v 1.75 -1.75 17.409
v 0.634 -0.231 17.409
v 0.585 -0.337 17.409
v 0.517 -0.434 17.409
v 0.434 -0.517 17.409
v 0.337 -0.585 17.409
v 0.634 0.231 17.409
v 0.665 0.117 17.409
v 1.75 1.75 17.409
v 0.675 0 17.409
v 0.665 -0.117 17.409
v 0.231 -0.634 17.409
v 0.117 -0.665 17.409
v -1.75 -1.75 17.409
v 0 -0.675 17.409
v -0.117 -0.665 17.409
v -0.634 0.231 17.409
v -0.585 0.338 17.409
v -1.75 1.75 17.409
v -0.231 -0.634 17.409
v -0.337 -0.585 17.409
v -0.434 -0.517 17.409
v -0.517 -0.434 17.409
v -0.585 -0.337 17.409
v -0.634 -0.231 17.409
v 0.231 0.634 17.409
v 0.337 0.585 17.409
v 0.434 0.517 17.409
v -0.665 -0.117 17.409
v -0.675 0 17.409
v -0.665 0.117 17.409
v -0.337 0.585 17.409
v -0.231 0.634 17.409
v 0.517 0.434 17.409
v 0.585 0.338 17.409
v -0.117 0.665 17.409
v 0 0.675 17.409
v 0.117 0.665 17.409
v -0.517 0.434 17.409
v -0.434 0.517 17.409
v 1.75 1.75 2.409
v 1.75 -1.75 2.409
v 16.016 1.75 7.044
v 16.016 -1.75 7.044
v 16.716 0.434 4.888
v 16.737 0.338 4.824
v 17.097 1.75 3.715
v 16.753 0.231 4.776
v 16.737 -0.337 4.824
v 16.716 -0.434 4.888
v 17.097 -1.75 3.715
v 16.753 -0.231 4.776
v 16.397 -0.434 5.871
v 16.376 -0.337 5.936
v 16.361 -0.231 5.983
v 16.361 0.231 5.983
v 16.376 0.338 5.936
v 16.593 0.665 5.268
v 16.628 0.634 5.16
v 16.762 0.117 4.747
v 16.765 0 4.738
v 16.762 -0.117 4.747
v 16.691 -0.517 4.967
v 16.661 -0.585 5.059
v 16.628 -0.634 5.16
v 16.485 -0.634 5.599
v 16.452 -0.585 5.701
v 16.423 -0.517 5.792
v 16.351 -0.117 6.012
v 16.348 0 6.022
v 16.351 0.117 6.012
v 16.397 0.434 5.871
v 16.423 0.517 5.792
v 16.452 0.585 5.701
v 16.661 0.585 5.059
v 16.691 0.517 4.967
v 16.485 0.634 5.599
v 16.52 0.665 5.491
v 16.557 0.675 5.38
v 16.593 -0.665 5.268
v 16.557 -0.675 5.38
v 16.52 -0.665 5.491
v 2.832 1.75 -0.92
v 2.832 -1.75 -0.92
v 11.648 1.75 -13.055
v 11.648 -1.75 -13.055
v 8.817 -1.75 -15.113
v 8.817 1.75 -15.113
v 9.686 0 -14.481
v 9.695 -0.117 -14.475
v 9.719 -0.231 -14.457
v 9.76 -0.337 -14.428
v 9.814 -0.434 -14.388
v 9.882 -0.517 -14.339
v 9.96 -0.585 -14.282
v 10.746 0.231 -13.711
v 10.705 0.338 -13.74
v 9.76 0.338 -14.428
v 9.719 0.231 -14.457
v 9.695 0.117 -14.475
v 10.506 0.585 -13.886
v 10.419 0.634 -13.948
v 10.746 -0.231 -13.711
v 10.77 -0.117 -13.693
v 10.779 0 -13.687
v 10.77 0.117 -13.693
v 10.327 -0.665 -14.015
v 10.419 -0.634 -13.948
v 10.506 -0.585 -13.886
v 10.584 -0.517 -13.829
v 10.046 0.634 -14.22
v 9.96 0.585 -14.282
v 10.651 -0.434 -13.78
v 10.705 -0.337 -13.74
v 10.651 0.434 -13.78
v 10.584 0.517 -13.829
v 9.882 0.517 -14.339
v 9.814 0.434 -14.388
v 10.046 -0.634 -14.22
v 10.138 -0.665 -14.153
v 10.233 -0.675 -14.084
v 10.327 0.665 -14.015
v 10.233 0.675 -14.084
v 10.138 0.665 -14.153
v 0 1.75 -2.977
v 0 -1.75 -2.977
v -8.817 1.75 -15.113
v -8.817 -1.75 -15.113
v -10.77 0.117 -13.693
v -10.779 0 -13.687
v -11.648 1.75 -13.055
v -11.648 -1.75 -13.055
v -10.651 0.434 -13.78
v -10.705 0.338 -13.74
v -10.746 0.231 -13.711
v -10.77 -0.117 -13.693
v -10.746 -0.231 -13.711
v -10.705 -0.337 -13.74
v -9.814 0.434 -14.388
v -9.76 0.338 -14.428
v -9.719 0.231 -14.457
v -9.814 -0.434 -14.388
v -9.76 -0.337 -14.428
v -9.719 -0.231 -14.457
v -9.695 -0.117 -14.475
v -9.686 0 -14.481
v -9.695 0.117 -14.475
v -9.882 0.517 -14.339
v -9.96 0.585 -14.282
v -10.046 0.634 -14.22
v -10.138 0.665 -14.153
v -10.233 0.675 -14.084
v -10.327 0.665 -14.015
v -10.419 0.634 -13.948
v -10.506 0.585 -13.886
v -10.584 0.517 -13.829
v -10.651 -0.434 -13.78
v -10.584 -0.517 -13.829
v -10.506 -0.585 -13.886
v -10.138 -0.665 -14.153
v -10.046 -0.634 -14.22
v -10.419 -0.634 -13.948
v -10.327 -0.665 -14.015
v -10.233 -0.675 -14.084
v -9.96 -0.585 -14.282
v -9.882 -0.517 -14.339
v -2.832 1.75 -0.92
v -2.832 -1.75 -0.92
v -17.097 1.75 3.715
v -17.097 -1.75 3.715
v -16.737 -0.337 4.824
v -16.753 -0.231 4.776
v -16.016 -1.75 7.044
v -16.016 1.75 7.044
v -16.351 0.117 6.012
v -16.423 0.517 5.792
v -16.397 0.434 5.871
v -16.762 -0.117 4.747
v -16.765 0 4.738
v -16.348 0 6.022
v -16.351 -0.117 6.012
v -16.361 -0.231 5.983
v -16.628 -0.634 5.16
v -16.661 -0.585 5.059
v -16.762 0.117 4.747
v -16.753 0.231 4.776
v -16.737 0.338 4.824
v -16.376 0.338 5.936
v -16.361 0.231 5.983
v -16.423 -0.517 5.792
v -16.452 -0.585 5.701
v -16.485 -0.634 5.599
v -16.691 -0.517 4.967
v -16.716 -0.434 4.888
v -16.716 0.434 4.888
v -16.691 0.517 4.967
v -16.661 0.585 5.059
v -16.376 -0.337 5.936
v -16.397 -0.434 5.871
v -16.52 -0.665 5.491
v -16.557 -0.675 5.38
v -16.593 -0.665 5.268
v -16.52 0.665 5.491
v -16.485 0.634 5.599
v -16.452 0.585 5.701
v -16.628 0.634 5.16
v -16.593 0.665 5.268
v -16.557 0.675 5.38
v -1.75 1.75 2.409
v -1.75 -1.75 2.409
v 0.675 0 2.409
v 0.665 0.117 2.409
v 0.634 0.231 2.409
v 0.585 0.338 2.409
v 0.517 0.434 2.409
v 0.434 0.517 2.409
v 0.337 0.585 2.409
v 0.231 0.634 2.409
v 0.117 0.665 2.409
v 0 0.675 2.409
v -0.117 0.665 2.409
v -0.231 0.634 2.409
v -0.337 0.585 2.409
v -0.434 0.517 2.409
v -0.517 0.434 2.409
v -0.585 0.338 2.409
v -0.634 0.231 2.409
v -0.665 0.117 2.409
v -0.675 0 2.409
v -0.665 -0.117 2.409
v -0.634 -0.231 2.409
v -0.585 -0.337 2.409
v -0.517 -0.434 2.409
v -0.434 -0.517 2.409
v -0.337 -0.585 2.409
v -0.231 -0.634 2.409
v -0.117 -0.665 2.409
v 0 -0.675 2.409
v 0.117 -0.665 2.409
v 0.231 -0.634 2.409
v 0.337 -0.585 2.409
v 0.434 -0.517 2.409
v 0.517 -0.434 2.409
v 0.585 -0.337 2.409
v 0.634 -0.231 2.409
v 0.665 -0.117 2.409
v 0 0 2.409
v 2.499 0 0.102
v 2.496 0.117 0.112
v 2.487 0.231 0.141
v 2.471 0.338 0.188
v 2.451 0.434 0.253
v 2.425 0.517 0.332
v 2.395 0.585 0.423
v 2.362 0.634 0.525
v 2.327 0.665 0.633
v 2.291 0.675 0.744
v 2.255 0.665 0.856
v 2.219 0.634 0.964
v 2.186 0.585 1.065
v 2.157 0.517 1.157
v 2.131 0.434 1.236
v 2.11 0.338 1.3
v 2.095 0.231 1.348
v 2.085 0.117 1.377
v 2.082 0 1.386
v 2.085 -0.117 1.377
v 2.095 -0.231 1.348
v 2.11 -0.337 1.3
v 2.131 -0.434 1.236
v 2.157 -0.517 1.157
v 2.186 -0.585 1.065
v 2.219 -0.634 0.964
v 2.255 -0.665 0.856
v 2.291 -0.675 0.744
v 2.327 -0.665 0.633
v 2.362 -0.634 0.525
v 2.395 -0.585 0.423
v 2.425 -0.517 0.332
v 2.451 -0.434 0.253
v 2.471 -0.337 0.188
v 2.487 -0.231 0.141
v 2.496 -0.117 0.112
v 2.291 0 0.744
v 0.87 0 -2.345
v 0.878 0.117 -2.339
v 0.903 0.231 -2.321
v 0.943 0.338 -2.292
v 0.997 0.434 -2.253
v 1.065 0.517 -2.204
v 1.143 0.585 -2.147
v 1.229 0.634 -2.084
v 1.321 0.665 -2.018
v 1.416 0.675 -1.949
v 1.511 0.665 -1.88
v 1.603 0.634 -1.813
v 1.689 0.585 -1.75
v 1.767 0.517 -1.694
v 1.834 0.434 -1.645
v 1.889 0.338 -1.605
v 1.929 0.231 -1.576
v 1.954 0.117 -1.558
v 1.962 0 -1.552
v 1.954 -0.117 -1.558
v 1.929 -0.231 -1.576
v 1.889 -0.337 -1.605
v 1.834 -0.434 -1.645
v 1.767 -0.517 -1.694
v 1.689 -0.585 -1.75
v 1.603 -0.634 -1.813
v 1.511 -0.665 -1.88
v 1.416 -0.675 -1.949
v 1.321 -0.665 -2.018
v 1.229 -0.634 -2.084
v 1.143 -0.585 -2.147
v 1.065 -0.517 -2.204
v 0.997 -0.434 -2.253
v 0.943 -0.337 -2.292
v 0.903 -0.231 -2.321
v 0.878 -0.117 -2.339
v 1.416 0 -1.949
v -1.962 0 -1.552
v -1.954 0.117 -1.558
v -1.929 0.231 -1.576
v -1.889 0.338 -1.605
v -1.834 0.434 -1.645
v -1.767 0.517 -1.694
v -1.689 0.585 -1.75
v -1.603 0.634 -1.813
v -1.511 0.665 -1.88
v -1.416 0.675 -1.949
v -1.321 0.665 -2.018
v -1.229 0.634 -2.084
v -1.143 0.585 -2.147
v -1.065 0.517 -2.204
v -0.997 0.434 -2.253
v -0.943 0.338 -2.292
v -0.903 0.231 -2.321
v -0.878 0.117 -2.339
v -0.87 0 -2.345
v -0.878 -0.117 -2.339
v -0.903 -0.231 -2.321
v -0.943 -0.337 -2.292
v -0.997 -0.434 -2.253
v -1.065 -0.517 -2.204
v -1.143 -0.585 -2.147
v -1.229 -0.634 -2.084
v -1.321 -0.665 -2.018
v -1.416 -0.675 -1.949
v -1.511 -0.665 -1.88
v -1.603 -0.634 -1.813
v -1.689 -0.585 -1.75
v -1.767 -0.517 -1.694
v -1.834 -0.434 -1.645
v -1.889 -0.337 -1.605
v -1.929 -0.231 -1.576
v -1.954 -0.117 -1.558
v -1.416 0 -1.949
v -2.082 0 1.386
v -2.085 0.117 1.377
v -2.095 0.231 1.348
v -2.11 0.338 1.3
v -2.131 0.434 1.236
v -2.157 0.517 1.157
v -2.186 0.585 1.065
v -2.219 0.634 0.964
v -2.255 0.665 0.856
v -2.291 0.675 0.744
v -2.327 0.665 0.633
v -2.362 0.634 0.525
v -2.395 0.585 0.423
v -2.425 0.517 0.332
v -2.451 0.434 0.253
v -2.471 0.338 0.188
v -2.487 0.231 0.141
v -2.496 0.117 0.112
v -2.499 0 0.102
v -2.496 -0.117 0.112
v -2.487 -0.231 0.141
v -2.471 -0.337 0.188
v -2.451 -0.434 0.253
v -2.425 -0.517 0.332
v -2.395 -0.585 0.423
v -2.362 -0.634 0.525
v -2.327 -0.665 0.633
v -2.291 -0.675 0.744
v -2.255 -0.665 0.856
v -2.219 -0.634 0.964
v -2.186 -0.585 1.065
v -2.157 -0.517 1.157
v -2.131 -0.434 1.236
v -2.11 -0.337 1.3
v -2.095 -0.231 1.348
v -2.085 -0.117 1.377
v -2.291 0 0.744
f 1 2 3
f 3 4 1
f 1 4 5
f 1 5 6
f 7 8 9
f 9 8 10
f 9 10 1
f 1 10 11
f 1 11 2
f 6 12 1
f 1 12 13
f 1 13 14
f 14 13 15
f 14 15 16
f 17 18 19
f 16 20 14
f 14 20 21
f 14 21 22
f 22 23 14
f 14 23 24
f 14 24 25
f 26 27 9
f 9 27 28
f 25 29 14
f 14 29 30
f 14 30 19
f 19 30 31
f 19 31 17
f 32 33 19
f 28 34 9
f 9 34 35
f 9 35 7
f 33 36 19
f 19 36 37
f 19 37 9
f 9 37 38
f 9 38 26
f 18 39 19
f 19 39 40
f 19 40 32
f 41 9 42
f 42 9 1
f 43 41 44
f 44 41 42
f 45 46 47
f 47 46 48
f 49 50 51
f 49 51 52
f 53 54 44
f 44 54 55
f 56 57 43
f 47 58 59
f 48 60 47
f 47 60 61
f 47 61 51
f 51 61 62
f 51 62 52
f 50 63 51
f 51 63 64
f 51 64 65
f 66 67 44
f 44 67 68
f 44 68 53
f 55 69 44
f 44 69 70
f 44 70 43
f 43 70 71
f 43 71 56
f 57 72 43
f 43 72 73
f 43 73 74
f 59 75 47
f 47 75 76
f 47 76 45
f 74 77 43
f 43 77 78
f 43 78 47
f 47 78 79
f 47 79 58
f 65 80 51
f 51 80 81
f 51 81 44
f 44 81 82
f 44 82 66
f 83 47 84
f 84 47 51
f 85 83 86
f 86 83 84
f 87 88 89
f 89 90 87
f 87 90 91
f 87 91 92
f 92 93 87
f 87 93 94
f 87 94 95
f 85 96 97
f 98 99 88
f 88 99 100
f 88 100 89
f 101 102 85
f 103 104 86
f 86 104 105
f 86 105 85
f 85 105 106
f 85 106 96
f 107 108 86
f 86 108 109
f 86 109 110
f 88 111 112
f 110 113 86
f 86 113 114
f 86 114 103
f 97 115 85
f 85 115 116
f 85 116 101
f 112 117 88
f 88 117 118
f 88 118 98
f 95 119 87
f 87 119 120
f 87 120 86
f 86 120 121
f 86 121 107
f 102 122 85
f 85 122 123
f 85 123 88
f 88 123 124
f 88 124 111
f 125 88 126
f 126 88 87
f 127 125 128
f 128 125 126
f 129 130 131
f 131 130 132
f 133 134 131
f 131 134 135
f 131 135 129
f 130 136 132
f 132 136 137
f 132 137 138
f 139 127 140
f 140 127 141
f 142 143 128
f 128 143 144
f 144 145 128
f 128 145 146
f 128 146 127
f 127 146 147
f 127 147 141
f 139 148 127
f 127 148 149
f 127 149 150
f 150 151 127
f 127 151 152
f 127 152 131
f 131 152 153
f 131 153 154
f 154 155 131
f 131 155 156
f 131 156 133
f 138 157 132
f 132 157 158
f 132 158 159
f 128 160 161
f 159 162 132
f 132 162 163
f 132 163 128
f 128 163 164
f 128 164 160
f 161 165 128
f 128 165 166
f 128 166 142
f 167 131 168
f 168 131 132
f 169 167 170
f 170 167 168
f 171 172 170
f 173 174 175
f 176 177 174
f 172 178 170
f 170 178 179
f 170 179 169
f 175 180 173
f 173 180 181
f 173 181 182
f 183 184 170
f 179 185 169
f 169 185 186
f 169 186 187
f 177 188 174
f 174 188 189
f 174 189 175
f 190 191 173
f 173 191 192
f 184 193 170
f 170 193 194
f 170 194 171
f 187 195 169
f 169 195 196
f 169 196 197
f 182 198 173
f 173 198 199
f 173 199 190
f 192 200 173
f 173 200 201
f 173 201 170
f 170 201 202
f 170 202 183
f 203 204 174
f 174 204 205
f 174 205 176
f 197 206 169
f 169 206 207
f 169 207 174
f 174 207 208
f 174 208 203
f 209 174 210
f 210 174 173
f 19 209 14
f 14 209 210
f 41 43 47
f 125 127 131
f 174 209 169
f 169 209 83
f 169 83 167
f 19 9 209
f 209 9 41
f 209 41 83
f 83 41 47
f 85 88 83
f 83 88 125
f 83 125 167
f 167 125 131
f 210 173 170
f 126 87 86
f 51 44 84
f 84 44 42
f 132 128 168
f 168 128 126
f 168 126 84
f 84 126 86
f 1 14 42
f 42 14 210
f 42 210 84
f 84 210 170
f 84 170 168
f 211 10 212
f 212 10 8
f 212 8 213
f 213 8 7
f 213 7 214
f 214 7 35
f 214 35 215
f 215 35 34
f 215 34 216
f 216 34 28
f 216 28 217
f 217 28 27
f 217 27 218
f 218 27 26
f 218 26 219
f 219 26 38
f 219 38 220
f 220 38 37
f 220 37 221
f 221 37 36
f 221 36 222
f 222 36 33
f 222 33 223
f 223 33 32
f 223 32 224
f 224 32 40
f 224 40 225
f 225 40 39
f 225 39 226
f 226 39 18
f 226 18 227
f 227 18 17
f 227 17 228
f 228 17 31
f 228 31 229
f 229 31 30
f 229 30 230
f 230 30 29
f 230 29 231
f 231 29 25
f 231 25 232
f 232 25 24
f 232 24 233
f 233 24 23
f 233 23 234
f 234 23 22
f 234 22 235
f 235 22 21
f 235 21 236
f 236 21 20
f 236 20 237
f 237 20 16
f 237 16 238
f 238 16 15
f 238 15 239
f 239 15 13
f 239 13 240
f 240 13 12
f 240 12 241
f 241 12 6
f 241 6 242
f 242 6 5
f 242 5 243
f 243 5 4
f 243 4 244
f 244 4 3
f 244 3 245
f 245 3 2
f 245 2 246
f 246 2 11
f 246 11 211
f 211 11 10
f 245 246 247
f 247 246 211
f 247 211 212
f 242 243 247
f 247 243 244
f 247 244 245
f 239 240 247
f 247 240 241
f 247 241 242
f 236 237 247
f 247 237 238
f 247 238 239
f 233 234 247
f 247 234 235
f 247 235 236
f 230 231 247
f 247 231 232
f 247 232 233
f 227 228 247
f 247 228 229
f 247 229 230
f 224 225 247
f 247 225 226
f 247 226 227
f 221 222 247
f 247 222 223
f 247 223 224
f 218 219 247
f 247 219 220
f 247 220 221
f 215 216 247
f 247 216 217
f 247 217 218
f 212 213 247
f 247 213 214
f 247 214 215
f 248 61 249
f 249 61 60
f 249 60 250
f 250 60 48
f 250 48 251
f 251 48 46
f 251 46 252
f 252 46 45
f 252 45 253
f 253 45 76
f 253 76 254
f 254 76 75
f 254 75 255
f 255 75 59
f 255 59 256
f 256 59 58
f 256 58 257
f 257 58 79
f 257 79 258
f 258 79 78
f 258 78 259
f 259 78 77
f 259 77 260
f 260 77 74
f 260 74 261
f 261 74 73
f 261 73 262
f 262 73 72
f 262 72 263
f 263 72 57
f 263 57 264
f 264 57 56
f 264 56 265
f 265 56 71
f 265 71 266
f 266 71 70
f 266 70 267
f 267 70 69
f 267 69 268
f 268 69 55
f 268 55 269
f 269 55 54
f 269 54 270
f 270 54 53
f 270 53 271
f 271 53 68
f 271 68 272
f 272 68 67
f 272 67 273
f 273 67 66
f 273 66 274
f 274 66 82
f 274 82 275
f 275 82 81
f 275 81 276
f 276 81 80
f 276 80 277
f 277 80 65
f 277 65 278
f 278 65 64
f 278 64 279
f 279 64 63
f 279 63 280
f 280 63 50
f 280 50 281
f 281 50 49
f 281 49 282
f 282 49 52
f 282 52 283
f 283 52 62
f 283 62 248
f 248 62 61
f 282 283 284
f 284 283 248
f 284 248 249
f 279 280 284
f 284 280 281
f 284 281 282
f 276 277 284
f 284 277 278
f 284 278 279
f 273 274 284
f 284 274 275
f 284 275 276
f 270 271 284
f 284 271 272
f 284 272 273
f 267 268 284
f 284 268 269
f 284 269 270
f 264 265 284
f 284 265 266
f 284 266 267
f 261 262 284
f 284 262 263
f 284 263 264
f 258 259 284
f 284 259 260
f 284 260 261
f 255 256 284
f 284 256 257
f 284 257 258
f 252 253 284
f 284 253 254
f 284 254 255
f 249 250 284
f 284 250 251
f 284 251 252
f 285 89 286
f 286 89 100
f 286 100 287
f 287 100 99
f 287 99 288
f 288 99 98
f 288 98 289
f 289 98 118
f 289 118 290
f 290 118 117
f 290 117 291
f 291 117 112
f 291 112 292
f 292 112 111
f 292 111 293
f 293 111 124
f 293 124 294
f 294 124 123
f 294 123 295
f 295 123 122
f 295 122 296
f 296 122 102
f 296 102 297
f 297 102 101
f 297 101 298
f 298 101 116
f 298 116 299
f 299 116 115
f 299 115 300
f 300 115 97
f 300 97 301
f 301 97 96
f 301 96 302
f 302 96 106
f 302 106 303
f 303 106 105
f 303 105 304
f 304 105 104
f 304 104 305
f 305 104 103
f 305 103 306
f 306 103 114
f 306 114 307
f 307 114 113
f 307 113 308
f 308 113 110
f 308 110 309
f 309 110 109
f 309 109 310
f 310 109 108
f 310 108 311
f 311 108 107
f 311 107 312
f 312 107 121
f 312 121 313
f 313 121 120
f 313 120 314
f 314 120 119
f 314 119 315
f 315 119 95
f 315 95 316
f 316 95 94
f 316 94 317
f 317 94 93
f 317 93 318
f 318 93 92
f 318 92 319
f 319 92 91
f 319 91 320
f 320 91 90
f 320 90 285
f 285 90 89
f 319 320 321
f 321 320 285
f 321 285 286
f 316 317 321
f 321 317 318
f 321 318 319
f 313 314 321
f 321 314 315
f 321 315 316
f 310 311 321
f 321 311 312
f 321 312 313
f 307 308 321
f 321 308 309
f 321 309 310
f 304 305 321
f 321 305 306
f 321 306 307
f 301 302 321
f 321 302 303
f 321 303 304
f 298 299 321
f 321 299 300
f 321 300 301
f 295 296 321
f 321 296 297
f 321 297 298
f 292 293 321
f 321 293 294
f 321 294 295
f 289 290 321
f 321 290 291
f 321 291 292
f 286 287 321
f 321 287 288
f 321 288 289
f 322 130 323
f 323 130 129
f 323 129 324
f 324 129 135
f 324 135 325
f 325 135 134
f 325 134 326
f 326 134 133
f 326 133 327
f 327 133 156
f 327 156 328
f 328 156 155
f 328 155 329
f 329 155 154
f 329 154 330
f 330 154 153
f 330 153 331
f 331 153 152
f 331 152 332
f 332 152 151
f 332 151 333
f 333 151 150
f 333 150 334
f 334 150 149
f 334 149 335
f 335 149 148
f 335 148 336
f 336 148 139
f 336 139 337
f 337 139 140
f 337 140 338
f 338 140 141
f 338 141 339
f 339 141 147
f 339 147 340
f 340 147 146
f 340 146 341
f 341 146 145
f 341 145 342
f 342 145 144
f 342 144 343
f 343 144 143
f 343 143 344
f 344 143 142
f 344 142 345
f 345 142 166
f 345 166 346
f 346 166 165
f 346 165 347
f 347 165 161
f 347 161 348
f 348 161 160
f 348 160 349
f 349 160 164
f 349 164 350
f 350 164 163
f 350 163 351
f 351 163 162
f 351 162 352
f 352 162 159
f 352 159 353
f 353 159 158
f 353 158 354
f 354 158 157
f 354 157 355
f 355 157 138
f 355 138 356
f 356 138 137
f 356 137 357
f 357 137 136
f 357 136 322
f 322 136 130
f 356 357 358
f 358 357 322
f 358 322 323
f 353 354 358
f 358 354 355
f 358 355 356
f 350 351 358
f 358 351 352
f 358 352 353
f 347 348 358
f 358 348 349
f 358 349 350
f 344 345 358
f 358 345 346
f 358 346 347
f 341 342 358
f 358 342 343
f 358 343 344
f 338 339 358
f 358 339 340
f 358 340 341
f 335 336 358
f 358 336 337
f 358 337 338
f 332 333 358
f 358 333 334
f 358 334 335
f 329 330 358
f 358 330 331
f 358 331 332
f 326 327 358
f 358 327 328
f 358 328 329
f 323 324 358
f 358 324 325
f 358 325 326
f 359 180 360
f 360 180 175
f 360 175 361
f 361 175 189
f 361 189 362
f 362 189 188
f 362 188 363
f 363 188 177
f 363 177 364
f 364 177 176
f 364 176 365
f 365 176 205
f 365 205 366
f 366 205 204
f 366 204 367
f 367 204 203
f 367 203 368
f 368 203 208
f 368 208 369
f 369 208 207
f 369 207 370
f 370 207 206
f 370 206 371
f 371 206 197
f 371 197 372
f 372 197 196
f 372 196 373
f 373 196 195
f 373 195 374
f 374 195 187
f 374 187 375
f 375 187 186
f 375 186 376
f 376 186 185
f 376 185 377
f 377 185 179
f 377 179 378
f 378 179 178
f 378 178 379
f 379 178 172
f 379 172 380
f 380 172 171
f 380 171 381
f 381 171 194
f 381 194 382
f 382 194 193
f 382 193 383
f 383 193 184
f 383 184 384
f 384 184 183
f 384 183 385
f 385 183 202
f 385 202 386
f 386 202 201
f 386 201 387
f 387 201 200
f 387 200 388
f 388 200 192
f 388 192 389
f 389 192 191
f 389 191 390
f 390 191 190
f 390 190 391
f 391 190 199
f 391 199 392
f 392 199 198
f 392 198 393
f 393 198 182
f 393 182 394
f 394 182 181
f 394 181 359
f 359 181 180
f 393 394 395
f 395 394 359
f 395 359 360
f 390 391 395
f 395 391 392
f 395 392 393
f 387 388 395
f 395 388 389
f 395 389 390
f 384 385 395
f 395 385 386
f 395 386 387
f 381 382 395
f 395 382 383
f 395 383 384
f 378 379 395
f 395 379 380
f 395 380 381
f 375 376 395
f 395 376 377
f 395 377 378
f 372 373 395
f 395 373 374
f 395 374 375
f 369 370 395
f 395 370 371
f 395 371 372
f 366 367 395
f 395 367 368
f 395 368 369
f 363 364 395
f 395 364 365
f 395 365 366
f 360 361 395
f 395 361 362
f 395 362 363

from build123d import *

# Parameters (mm, degrees)
BOSS_EXTRUDE1_DEPTH = 1.75
SKETCH2_R           = 0.675
CUT_EXTRUDE4_DEPTH  = 15
SKETCH7_R           = 0.675
CUT_EXTRUDE8_DEPTH  = 15
SKETCH8_R           = 0.675
CUT_EXTRUDE9_DEPTH  = 15
SKETCH9_R           = 0.675
CUT_EXTRUDE10_DEPTH = 15
SKETCH10_R          = 0.675
CUT_EXTRUDE11_DEPTH = 15


with BuildPart() as part:
    # Sketch1 → Boss-Extrude1 (new, symmetric)
    with BuildSketch(Plane(origin=(0, 0, 0), x_dir=(1, 0, 0), z_dir=(0, 1, 0))):
        Polygon((1.75, -2.408668361), (1.75, -17.408668361), (-1.75, -17.408668361), (-1.75, -2.408668361), (-16.015847744, -7.043923276), (-17.097407225, -3.715225469), (-2.83155948, 0.920029446), (-11.648338265, 13.055284362), (-8.816778784, 15.112532745), (0, 2.977277829), (8.816778784, 15.112532745), (11.648338265, 13.055284362), (2.83155948, 0.920029446), (17.097407225, -3.715225469), (16.015847744, -7.043923276), align=None)
    extrude(amount=BOSS_EXTRUDE1_DEPTH, both=True)

    # Sketch2 → Cut-Extrude4 (cut)
    with BuildSketch(Plane.XY.offset(17.408668361)):
        Circle(SKETCH2_R)
    extrude(amount=-CUT_EXTRUDE4_DEPTH, mode=Mode.SUBTRACT)

    # Sketch7 → Cut-Extrude8 (cut)
    with BuildSketch(Plane(origin=(16.556627485, 0, 5.379574373), x_dir=(0.3090169943749429, 0, -0.9510565162951551), z_dir=(0.9510565162951551, 0, 0.3090169943749429))):
        Circle(SKETCH7_R)
    extrude(amount=-CUT_EXTRUDE8_DEPTH, mode=Mode.SUBTRACT)

    # Sketch8 → Cut-Extrude9 (cut)
    with BuildSketch(Plane(origin=(10.232558525, 0, -14.083908553), x_dir=(-0.8090169943749378, 0, -0.5877852522924866), z_dir=(0.5877852522924866, 0, -0.8090169943749378))):
        Circle(SKETCH8_R)
    extrude(amount=-CUT_EXTRUDE9_DEPTH, mode=Mode.SUBTRACT)

    # Sketch9 → Cut-Extrude10 (cut)
    with BuildSketch(Plane(origin=(-10.232558525, 0, -14.083908553), x_dir=(-0.8090169943749476, 0, 0.5877852522924731), z_dir=(-0.587785252292473, 0, -0.8090169943749476))):
        Circle(SKETCH9_R)
    extrude(amount=-CUT_EXTRUDE10_DEPTH, mode=Mode.SUBTRACT)

    # Sketch10 → Cut-Extrude11 (cut)
    with BuildSketch(Plane(origin=(-16.556627485, 0, 5.379574373), x_dir=(0.3090169943749515, 0, 0.9510565162951523), z_dir=(-0.9510565162951523, 0, 0.3090169943749515))):
        Circle(SKETCH10_R)
    extrude(amount=-CUT_EXTRUDE11_DEPTH, mode=Mode.SUBTRACT)


solid = part.part
